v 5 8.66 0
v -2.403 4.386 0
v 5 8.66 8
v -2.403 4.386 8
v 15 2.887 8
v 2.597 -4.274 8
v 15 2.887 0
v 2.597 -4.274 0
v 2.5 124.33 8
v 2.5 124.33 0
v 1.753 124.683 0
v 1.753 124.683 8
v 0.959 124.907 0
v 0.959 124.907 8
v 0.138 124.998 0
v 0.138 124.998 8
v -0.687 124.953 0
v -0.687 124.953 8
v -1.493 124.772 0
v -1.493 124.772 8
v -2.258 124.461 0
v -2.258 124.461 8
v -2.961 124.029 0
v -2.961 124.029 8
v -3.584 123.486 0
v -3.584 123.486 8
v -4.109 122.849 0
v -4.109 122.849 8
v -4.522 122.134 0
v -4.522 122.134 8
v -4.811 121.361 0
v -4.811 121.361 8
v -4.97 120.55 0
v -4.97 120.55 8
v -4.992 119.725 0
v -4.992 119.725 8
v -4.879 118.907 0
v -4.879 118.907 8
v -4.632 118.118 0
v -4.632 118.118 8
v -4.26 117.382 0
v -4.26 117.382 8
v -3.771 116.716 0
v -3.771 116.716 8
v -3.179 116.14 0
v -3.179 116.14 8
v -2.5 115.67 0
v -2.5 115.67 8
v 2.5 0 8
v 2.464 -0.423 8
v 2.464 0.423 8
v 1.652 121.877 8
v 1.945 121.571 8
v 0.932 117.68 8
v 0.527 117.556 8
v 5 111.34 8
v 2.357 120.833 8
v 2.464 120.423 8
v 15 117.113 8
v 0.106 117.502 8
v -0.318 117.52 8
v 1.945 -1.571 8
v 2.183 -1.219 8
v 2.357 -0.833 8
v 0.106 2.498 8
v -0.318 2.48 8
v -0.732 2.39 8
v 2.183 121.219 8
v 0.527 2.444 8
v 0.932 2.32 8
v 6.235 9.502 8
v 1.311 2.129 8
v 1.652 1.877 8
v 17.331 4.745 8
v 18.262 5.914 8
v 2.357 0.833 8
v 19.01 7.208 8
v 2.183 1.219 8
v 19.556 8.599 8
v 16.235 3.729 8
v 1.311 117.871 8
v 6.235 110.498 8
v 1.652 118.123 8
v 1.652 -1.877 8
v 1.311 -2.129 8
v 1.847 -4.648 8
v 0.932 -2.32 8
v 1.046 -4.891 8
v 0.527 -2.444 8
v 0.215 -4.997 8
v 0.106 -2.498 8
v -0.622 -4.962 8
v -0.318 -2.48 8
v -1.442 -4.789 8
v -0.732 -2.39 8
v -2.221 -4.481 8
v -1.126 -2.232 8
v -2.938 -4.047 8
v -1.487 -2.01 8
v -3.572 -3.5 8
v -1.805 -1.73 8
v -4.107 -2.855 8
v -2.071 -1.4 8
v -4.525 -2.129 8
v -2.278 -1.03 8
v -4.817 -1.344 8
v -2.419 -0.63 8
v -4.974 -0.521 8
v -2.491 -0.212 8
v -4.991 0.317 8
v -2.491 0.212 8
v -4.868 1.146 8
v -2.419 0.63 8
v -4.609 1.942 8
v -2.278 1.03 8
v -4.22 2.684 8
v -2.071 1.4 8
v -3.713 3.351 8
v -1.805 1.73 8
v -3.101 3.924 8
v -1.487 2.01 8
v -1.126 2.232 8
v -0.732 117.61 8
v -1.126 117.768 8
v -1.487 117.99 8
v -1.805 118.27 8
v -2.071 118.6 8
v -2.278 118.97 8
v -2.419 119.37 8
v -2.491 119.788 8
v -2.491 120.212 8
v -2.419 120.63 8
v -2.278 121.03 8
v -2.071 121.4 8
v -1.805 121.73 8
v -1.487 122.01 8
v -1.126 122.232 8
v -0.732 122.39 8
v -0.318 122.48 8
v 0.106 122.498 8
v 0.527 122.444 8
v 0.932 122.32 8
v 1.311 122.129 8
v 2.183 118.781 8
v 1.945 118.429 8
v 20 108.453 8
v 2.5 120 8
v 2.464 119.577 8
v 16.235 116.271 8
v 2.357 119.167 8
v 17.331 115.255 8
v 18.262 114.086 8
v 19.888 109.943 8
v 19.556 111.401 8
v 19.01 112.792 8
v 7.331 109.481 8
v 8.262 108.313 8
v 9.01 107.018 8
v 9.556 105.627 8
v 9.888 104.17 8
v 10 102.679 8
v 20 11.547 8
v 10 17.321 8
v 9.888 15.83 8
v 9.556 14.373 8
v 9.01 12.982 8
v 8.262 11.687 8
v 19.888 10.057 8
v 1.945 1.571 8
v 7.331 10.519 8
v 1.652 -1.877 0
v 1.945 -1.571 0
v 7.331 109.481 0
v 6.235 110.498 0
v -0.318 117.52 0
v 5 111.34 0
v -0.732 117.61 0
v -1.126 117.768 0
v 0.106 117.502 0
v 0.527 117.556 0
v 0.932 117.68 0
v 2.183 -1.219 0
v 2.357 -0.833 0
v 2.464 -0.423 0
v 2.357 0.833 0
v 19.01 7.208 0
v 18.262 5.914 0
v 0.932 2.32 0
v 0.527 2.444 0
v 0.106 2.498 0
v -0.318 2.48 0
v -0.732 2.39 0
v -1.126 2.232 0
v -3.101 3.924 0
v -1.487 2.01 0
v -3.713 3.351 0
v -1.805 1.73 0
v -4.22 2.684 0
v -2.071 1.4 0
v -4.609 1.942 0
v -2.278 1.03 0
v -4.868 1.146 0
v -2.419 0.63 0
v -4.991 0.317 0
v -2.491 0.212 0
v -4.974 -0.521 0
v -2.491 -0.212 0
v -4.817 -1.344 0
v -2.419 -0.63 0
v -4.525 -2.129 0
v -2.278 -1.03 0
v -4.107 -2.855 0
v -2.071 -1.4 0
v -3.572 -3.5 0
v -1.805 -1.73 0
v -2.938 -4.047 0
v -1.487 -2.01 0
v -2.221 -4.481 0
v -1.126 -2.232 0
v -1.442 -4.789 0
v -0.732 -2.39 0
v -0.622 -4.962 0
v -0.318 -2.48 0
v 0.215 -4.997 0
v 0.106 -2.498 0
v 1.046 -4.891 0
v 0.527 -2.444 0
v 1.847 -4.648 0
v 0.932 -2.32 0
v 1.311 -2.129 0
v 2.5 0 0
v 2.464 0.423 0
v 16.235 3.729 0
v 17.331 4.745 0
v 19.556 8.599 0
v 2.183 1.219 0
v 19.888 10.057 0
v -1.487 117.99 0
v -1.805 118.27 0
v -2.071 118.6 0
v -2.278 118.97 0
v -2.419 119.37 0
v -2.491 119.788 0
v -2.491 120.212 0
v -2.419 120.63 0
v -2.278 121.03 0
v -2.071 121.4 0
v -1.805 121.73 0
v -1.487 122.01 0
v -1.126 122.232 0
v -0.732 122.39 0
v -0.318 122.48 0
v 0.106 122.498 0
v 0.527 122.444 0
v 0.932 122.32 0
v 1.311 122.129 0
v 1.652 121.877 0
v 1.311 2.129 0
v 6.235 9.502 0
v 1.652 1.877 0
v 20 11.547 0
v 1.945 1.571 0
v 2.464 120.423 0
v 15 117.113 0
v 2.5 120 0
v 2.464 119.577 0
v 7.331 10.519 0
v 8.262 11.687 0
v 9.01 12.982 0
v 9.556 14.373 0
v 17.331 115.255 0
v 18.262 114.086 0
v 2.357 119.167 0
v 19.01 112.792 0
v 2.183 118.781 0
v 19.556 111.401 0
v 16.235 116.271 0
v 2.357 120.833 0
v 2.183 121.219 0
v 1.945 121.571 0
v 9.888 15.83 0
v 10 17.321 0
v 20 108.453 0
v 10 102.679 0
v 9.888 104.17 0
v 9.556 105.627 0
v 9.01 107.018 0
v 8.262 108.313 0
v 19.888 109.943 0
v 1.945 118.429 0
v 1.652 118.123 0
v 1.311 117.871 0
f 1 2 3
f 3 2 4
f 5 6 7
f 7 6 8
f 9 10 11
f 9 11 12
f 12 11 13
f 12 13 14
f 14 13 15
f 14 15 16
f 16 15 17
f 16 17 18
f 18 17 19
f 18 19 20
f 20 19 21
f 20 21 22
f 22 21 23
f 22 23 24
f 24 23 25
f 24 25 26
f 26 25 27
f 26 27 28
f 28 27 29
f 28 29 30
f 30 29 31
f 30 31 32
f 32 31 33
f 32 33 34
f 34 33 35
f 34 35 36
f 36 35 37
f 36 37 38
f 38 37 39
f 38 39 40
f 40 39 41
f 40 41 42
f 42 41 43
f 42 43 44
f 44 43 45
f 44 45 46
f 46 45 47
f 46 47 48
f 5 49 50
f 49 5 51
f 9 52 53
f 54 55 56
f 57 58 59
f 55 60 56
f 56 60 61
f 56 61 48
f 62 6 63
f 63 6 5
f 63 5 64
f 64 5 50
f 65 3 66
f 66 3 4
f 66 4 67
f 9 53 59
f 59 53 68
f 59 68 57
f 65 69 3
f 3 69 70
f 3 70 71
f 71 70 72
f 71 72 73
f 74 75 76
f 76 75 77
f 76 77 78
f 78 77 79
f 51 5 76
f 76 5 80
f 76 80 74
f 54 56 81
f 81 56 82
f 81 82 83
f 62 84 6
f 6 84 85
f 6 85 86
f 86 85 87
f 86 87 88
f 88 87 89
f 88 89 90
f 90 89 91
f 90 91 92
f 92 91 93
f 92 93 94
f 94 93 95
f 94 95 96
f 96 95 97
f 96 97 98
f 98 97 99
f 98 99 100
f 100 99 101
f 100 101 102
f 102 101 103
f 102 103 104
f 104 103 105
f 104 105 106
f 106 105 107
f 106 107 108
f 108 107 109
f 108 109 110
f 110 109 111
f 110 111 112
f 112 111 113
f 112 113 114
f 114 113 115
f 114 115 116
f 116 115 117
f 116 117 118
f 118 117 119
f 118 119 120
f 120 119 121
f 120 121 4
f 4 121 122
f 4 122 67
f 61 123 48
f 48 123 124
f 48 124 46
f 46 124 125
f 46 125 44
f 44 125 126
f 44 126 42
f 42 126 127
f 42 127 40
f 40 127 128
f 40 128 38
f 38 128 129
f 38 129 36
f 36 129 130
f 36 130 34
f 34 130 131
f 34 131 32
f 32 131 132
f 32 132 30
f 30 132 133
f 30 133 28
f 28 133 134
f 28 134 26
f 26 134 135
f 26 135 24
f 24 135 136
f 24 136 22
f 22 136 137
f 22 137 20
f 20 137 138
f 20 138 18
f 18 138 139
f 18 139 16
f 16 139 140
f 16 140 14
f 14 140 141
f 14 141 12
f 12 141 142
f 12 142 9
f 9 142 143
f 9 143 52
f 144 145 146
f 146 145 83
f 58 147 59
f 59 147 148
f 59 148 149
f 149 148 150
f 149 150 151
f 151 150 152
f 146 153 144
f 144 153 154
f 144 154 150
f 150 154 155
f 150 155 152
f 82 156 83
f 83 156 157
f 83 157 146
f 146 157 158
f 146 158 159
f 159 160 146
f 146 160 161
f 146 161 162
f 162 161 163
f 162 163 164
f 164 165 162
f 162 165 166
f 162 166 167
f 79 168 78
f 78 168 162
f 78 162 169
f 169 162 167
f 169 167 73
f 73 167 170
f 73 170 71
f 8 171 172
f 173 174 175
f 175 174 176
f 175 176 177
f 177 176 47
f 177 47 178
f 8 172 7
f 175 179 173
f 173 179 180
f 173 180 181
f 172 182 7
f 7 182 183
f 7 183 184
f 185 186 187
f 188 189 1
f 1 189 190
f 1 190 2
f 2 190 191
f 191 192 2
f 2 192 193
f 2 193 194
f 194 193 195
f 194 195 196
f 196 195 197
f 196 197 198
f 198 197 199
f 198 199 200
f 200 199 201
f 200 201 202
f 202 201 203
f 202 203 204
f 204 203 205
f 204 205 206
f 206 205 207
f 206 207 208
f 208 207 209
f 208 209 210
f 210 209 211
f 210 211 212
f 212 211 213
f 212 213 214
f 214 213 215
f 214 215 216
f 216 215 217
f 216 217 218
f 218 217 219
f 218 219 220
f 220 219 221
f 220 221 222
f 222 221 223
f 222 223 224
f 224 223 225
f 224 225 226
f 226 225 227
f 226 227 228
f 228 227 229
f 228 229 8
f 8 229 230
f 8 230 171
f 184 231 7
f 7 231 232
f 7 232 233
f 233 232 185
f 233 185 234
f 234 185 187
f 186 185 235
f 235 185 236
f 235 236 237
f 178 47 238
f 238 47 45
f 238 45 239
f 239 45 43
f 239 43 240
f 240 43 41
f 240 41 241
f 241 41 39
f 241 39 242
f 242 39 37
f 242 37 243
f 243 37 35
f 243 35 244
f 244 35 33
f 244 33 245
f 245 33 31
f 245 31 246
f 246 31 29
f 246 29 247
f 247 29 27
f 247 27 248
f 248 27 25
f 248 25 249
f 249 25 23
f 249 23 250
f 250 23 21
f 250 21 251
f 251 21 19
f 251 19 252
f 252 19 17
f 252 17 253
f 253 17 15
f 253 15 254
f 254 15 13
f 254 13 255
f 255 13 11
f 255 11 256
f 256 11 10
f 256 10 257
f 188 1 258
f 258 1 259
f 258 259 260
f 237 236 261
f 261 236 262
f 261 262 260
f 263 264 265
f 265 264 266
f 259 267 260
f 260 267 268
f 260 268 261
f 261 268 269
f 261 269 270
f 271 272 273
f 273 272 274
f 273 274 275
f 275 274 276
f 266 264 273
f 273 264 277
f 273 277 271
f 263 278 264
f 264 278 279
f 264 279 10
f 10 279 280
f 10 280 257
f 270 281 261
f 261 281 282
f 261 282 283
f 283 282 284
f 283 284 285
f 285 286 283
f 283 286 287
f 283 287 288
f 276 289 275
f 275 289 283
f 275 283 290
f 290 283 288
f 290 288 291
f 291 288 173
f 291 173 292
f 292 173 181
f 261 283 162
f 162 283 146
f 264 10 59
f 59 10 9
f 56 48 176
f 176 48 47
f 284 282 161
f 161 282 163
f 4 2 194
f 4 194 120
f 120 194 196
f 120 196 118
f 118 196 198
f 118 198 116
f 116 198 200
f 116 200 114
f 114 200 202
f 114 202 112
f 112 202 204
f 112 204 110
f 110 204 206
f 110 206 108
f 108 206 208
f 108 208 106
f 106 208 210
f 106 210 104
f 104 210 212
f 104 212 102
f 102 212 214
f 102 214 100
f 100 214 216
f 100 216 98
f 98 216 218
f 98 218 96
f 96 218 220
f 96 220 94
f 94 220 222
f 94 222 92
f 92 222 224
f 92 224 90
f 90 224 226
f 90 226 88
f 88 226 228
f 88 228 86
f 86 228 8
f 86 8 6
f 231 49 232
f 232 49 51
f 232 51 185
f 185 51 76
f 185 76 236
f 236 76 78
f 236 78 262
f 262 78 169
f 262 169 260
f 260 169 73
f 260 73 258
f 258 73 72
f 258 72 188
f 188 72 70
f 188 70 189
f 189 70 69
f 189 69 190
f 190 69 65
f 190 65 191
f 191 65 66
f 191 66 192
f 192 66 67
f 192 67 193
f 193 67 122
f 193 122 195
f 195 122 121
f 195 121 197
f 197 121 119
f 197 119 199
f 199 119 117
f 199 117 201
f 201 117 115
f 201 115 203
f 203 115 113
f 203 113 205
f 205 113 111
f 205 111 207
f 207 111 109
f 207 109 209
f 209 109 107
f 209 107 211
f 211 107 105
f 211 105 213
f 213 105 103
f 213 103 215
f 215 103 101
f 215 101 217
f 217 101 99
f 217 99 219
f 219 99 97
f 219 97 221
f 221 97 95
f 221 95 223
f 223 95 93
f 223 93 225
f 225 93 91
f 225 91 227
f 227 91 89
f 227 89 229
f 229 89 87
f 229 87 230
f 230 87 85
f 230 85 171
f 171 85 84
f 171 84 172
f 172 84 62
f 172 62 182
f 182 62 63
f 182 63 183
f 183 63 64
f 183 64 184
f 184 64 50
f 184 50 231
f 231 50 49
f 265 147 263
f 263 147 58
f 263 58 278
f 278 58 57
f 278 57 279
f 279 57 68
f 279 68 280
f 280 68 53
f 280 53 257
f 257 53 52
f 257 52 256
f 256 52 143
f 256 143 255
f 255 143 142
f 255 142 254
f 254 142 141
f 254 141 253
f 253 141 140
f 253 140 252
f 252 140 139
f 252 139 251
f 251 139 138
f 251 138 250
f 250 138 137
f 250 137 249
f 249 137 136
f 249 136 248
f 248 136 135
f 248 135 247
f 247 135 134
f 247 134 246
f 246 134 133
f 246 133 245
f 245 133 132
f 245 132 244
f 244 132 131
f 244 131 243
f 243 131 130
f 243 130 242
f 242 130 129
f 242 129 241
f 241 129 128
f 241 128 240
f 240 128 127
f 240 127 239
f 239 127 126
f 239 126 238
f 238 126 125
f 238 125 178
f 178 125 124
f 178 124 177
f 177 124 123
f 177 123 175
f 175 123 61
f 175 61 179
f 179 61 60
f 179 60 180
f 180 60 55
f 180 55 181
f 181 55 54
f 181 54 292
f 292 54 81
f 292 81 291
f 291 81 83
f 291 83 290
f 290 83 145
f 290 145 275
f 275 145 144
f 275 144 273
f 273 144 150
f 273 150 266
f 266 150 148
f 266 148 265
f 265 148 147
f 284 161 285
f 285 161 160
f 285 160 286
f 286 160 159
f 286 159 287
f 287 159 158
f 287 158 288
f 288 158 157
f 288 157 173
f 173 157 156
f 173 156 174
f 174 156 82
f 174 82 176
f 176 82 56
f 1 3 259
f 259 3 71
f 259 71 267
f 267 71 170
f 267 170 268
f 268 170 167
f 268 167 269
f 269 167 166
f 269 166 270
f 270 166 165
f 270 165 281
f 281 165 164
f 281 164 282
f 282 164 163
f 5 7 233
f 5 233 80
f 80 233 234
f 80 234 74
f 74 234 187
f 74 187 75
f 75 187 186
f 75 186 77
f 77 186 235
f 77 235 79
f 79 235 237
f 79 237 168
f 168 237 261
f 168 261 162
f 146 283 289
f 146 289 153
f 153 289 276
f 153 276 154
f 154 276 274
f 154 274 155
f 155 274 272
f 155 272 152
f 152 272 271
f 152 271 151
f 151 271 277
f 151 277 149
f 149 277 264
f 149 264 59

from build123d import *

# Parameters (mm, degrees)
SKETCH_1_R          = 5
EXTRUDE_1_DEPTH     = 8
SKETCH_1_R_2        = 5.001260551
EXTRUDE_1_2_DEPTH   = 8
EXTRUDE_4_DEPTH     = 8
SKETCH_5_R          = 2.5
CUT_EXTRUDE_2_DEPTH = 127.842421926
FILLET_1_R          = 10


with BuildPart() as part:
    # 草图1 → 凸台-拉伸1 (new body)
    with BuildSketch(Plane.XY):
        with Locations((0, 120)):
            Circle(SKETCH_1_R)
    extrude(amount=EXTRUDE_1_DEPTH)



with BuildPart() as body_2:
    # 草图1 → Extrude 1 2 (new body)
    with BuildSketch(Plane.XY):
        Circle(SKETCH_1_R_2)
    extrude(amount=EXTRUDE_1_2_DEPTH)


with BuildPart() as part_1:
    add(part.part)

    add(body_2.part)  # 拉伸-薄壁4 merges body 2
    # 草图4 → 拉伸-薄壁4 (add)
    with BuildSketch(Plane.XY):
        Polygon((-2.5, 115.669872981), (10, 108.452994616), (10, 11.547005384), (-2.5, 4.330127019), (2.5, -4.330127019), (20, 5.773502692), (20, 114.226497308), (2.5, 124.330127019), align=None)
    extrude(amount=EXTRUDE_4_DEPTH)

    # 草图5 → 切除-拉伸2 (cut, through all)
    with BuildSketch(Plane.XY.offset(8)):
        with Locations((0, 120)):
            Circle(SKETCH_5_R)
        Circle(SKETCH_5_R)
    extrude(amount=-CUT_EXTRUDE_2_DEPTH, mode=Mode.SUBTRACT)

    # 圆角1
    fillet_1_edges = [part_1.edges().sort_by_distance(p)[0] for p in [
        (10, 11.547005384, 4),
        (20, 5.773502692, 4),
        (20, 114.226497308, 4),
        (10, 108.452994616, 4),
    ]]
    fillet(fillet_1_edges, radius=FILLET_1_R)


solid = part_1.part
